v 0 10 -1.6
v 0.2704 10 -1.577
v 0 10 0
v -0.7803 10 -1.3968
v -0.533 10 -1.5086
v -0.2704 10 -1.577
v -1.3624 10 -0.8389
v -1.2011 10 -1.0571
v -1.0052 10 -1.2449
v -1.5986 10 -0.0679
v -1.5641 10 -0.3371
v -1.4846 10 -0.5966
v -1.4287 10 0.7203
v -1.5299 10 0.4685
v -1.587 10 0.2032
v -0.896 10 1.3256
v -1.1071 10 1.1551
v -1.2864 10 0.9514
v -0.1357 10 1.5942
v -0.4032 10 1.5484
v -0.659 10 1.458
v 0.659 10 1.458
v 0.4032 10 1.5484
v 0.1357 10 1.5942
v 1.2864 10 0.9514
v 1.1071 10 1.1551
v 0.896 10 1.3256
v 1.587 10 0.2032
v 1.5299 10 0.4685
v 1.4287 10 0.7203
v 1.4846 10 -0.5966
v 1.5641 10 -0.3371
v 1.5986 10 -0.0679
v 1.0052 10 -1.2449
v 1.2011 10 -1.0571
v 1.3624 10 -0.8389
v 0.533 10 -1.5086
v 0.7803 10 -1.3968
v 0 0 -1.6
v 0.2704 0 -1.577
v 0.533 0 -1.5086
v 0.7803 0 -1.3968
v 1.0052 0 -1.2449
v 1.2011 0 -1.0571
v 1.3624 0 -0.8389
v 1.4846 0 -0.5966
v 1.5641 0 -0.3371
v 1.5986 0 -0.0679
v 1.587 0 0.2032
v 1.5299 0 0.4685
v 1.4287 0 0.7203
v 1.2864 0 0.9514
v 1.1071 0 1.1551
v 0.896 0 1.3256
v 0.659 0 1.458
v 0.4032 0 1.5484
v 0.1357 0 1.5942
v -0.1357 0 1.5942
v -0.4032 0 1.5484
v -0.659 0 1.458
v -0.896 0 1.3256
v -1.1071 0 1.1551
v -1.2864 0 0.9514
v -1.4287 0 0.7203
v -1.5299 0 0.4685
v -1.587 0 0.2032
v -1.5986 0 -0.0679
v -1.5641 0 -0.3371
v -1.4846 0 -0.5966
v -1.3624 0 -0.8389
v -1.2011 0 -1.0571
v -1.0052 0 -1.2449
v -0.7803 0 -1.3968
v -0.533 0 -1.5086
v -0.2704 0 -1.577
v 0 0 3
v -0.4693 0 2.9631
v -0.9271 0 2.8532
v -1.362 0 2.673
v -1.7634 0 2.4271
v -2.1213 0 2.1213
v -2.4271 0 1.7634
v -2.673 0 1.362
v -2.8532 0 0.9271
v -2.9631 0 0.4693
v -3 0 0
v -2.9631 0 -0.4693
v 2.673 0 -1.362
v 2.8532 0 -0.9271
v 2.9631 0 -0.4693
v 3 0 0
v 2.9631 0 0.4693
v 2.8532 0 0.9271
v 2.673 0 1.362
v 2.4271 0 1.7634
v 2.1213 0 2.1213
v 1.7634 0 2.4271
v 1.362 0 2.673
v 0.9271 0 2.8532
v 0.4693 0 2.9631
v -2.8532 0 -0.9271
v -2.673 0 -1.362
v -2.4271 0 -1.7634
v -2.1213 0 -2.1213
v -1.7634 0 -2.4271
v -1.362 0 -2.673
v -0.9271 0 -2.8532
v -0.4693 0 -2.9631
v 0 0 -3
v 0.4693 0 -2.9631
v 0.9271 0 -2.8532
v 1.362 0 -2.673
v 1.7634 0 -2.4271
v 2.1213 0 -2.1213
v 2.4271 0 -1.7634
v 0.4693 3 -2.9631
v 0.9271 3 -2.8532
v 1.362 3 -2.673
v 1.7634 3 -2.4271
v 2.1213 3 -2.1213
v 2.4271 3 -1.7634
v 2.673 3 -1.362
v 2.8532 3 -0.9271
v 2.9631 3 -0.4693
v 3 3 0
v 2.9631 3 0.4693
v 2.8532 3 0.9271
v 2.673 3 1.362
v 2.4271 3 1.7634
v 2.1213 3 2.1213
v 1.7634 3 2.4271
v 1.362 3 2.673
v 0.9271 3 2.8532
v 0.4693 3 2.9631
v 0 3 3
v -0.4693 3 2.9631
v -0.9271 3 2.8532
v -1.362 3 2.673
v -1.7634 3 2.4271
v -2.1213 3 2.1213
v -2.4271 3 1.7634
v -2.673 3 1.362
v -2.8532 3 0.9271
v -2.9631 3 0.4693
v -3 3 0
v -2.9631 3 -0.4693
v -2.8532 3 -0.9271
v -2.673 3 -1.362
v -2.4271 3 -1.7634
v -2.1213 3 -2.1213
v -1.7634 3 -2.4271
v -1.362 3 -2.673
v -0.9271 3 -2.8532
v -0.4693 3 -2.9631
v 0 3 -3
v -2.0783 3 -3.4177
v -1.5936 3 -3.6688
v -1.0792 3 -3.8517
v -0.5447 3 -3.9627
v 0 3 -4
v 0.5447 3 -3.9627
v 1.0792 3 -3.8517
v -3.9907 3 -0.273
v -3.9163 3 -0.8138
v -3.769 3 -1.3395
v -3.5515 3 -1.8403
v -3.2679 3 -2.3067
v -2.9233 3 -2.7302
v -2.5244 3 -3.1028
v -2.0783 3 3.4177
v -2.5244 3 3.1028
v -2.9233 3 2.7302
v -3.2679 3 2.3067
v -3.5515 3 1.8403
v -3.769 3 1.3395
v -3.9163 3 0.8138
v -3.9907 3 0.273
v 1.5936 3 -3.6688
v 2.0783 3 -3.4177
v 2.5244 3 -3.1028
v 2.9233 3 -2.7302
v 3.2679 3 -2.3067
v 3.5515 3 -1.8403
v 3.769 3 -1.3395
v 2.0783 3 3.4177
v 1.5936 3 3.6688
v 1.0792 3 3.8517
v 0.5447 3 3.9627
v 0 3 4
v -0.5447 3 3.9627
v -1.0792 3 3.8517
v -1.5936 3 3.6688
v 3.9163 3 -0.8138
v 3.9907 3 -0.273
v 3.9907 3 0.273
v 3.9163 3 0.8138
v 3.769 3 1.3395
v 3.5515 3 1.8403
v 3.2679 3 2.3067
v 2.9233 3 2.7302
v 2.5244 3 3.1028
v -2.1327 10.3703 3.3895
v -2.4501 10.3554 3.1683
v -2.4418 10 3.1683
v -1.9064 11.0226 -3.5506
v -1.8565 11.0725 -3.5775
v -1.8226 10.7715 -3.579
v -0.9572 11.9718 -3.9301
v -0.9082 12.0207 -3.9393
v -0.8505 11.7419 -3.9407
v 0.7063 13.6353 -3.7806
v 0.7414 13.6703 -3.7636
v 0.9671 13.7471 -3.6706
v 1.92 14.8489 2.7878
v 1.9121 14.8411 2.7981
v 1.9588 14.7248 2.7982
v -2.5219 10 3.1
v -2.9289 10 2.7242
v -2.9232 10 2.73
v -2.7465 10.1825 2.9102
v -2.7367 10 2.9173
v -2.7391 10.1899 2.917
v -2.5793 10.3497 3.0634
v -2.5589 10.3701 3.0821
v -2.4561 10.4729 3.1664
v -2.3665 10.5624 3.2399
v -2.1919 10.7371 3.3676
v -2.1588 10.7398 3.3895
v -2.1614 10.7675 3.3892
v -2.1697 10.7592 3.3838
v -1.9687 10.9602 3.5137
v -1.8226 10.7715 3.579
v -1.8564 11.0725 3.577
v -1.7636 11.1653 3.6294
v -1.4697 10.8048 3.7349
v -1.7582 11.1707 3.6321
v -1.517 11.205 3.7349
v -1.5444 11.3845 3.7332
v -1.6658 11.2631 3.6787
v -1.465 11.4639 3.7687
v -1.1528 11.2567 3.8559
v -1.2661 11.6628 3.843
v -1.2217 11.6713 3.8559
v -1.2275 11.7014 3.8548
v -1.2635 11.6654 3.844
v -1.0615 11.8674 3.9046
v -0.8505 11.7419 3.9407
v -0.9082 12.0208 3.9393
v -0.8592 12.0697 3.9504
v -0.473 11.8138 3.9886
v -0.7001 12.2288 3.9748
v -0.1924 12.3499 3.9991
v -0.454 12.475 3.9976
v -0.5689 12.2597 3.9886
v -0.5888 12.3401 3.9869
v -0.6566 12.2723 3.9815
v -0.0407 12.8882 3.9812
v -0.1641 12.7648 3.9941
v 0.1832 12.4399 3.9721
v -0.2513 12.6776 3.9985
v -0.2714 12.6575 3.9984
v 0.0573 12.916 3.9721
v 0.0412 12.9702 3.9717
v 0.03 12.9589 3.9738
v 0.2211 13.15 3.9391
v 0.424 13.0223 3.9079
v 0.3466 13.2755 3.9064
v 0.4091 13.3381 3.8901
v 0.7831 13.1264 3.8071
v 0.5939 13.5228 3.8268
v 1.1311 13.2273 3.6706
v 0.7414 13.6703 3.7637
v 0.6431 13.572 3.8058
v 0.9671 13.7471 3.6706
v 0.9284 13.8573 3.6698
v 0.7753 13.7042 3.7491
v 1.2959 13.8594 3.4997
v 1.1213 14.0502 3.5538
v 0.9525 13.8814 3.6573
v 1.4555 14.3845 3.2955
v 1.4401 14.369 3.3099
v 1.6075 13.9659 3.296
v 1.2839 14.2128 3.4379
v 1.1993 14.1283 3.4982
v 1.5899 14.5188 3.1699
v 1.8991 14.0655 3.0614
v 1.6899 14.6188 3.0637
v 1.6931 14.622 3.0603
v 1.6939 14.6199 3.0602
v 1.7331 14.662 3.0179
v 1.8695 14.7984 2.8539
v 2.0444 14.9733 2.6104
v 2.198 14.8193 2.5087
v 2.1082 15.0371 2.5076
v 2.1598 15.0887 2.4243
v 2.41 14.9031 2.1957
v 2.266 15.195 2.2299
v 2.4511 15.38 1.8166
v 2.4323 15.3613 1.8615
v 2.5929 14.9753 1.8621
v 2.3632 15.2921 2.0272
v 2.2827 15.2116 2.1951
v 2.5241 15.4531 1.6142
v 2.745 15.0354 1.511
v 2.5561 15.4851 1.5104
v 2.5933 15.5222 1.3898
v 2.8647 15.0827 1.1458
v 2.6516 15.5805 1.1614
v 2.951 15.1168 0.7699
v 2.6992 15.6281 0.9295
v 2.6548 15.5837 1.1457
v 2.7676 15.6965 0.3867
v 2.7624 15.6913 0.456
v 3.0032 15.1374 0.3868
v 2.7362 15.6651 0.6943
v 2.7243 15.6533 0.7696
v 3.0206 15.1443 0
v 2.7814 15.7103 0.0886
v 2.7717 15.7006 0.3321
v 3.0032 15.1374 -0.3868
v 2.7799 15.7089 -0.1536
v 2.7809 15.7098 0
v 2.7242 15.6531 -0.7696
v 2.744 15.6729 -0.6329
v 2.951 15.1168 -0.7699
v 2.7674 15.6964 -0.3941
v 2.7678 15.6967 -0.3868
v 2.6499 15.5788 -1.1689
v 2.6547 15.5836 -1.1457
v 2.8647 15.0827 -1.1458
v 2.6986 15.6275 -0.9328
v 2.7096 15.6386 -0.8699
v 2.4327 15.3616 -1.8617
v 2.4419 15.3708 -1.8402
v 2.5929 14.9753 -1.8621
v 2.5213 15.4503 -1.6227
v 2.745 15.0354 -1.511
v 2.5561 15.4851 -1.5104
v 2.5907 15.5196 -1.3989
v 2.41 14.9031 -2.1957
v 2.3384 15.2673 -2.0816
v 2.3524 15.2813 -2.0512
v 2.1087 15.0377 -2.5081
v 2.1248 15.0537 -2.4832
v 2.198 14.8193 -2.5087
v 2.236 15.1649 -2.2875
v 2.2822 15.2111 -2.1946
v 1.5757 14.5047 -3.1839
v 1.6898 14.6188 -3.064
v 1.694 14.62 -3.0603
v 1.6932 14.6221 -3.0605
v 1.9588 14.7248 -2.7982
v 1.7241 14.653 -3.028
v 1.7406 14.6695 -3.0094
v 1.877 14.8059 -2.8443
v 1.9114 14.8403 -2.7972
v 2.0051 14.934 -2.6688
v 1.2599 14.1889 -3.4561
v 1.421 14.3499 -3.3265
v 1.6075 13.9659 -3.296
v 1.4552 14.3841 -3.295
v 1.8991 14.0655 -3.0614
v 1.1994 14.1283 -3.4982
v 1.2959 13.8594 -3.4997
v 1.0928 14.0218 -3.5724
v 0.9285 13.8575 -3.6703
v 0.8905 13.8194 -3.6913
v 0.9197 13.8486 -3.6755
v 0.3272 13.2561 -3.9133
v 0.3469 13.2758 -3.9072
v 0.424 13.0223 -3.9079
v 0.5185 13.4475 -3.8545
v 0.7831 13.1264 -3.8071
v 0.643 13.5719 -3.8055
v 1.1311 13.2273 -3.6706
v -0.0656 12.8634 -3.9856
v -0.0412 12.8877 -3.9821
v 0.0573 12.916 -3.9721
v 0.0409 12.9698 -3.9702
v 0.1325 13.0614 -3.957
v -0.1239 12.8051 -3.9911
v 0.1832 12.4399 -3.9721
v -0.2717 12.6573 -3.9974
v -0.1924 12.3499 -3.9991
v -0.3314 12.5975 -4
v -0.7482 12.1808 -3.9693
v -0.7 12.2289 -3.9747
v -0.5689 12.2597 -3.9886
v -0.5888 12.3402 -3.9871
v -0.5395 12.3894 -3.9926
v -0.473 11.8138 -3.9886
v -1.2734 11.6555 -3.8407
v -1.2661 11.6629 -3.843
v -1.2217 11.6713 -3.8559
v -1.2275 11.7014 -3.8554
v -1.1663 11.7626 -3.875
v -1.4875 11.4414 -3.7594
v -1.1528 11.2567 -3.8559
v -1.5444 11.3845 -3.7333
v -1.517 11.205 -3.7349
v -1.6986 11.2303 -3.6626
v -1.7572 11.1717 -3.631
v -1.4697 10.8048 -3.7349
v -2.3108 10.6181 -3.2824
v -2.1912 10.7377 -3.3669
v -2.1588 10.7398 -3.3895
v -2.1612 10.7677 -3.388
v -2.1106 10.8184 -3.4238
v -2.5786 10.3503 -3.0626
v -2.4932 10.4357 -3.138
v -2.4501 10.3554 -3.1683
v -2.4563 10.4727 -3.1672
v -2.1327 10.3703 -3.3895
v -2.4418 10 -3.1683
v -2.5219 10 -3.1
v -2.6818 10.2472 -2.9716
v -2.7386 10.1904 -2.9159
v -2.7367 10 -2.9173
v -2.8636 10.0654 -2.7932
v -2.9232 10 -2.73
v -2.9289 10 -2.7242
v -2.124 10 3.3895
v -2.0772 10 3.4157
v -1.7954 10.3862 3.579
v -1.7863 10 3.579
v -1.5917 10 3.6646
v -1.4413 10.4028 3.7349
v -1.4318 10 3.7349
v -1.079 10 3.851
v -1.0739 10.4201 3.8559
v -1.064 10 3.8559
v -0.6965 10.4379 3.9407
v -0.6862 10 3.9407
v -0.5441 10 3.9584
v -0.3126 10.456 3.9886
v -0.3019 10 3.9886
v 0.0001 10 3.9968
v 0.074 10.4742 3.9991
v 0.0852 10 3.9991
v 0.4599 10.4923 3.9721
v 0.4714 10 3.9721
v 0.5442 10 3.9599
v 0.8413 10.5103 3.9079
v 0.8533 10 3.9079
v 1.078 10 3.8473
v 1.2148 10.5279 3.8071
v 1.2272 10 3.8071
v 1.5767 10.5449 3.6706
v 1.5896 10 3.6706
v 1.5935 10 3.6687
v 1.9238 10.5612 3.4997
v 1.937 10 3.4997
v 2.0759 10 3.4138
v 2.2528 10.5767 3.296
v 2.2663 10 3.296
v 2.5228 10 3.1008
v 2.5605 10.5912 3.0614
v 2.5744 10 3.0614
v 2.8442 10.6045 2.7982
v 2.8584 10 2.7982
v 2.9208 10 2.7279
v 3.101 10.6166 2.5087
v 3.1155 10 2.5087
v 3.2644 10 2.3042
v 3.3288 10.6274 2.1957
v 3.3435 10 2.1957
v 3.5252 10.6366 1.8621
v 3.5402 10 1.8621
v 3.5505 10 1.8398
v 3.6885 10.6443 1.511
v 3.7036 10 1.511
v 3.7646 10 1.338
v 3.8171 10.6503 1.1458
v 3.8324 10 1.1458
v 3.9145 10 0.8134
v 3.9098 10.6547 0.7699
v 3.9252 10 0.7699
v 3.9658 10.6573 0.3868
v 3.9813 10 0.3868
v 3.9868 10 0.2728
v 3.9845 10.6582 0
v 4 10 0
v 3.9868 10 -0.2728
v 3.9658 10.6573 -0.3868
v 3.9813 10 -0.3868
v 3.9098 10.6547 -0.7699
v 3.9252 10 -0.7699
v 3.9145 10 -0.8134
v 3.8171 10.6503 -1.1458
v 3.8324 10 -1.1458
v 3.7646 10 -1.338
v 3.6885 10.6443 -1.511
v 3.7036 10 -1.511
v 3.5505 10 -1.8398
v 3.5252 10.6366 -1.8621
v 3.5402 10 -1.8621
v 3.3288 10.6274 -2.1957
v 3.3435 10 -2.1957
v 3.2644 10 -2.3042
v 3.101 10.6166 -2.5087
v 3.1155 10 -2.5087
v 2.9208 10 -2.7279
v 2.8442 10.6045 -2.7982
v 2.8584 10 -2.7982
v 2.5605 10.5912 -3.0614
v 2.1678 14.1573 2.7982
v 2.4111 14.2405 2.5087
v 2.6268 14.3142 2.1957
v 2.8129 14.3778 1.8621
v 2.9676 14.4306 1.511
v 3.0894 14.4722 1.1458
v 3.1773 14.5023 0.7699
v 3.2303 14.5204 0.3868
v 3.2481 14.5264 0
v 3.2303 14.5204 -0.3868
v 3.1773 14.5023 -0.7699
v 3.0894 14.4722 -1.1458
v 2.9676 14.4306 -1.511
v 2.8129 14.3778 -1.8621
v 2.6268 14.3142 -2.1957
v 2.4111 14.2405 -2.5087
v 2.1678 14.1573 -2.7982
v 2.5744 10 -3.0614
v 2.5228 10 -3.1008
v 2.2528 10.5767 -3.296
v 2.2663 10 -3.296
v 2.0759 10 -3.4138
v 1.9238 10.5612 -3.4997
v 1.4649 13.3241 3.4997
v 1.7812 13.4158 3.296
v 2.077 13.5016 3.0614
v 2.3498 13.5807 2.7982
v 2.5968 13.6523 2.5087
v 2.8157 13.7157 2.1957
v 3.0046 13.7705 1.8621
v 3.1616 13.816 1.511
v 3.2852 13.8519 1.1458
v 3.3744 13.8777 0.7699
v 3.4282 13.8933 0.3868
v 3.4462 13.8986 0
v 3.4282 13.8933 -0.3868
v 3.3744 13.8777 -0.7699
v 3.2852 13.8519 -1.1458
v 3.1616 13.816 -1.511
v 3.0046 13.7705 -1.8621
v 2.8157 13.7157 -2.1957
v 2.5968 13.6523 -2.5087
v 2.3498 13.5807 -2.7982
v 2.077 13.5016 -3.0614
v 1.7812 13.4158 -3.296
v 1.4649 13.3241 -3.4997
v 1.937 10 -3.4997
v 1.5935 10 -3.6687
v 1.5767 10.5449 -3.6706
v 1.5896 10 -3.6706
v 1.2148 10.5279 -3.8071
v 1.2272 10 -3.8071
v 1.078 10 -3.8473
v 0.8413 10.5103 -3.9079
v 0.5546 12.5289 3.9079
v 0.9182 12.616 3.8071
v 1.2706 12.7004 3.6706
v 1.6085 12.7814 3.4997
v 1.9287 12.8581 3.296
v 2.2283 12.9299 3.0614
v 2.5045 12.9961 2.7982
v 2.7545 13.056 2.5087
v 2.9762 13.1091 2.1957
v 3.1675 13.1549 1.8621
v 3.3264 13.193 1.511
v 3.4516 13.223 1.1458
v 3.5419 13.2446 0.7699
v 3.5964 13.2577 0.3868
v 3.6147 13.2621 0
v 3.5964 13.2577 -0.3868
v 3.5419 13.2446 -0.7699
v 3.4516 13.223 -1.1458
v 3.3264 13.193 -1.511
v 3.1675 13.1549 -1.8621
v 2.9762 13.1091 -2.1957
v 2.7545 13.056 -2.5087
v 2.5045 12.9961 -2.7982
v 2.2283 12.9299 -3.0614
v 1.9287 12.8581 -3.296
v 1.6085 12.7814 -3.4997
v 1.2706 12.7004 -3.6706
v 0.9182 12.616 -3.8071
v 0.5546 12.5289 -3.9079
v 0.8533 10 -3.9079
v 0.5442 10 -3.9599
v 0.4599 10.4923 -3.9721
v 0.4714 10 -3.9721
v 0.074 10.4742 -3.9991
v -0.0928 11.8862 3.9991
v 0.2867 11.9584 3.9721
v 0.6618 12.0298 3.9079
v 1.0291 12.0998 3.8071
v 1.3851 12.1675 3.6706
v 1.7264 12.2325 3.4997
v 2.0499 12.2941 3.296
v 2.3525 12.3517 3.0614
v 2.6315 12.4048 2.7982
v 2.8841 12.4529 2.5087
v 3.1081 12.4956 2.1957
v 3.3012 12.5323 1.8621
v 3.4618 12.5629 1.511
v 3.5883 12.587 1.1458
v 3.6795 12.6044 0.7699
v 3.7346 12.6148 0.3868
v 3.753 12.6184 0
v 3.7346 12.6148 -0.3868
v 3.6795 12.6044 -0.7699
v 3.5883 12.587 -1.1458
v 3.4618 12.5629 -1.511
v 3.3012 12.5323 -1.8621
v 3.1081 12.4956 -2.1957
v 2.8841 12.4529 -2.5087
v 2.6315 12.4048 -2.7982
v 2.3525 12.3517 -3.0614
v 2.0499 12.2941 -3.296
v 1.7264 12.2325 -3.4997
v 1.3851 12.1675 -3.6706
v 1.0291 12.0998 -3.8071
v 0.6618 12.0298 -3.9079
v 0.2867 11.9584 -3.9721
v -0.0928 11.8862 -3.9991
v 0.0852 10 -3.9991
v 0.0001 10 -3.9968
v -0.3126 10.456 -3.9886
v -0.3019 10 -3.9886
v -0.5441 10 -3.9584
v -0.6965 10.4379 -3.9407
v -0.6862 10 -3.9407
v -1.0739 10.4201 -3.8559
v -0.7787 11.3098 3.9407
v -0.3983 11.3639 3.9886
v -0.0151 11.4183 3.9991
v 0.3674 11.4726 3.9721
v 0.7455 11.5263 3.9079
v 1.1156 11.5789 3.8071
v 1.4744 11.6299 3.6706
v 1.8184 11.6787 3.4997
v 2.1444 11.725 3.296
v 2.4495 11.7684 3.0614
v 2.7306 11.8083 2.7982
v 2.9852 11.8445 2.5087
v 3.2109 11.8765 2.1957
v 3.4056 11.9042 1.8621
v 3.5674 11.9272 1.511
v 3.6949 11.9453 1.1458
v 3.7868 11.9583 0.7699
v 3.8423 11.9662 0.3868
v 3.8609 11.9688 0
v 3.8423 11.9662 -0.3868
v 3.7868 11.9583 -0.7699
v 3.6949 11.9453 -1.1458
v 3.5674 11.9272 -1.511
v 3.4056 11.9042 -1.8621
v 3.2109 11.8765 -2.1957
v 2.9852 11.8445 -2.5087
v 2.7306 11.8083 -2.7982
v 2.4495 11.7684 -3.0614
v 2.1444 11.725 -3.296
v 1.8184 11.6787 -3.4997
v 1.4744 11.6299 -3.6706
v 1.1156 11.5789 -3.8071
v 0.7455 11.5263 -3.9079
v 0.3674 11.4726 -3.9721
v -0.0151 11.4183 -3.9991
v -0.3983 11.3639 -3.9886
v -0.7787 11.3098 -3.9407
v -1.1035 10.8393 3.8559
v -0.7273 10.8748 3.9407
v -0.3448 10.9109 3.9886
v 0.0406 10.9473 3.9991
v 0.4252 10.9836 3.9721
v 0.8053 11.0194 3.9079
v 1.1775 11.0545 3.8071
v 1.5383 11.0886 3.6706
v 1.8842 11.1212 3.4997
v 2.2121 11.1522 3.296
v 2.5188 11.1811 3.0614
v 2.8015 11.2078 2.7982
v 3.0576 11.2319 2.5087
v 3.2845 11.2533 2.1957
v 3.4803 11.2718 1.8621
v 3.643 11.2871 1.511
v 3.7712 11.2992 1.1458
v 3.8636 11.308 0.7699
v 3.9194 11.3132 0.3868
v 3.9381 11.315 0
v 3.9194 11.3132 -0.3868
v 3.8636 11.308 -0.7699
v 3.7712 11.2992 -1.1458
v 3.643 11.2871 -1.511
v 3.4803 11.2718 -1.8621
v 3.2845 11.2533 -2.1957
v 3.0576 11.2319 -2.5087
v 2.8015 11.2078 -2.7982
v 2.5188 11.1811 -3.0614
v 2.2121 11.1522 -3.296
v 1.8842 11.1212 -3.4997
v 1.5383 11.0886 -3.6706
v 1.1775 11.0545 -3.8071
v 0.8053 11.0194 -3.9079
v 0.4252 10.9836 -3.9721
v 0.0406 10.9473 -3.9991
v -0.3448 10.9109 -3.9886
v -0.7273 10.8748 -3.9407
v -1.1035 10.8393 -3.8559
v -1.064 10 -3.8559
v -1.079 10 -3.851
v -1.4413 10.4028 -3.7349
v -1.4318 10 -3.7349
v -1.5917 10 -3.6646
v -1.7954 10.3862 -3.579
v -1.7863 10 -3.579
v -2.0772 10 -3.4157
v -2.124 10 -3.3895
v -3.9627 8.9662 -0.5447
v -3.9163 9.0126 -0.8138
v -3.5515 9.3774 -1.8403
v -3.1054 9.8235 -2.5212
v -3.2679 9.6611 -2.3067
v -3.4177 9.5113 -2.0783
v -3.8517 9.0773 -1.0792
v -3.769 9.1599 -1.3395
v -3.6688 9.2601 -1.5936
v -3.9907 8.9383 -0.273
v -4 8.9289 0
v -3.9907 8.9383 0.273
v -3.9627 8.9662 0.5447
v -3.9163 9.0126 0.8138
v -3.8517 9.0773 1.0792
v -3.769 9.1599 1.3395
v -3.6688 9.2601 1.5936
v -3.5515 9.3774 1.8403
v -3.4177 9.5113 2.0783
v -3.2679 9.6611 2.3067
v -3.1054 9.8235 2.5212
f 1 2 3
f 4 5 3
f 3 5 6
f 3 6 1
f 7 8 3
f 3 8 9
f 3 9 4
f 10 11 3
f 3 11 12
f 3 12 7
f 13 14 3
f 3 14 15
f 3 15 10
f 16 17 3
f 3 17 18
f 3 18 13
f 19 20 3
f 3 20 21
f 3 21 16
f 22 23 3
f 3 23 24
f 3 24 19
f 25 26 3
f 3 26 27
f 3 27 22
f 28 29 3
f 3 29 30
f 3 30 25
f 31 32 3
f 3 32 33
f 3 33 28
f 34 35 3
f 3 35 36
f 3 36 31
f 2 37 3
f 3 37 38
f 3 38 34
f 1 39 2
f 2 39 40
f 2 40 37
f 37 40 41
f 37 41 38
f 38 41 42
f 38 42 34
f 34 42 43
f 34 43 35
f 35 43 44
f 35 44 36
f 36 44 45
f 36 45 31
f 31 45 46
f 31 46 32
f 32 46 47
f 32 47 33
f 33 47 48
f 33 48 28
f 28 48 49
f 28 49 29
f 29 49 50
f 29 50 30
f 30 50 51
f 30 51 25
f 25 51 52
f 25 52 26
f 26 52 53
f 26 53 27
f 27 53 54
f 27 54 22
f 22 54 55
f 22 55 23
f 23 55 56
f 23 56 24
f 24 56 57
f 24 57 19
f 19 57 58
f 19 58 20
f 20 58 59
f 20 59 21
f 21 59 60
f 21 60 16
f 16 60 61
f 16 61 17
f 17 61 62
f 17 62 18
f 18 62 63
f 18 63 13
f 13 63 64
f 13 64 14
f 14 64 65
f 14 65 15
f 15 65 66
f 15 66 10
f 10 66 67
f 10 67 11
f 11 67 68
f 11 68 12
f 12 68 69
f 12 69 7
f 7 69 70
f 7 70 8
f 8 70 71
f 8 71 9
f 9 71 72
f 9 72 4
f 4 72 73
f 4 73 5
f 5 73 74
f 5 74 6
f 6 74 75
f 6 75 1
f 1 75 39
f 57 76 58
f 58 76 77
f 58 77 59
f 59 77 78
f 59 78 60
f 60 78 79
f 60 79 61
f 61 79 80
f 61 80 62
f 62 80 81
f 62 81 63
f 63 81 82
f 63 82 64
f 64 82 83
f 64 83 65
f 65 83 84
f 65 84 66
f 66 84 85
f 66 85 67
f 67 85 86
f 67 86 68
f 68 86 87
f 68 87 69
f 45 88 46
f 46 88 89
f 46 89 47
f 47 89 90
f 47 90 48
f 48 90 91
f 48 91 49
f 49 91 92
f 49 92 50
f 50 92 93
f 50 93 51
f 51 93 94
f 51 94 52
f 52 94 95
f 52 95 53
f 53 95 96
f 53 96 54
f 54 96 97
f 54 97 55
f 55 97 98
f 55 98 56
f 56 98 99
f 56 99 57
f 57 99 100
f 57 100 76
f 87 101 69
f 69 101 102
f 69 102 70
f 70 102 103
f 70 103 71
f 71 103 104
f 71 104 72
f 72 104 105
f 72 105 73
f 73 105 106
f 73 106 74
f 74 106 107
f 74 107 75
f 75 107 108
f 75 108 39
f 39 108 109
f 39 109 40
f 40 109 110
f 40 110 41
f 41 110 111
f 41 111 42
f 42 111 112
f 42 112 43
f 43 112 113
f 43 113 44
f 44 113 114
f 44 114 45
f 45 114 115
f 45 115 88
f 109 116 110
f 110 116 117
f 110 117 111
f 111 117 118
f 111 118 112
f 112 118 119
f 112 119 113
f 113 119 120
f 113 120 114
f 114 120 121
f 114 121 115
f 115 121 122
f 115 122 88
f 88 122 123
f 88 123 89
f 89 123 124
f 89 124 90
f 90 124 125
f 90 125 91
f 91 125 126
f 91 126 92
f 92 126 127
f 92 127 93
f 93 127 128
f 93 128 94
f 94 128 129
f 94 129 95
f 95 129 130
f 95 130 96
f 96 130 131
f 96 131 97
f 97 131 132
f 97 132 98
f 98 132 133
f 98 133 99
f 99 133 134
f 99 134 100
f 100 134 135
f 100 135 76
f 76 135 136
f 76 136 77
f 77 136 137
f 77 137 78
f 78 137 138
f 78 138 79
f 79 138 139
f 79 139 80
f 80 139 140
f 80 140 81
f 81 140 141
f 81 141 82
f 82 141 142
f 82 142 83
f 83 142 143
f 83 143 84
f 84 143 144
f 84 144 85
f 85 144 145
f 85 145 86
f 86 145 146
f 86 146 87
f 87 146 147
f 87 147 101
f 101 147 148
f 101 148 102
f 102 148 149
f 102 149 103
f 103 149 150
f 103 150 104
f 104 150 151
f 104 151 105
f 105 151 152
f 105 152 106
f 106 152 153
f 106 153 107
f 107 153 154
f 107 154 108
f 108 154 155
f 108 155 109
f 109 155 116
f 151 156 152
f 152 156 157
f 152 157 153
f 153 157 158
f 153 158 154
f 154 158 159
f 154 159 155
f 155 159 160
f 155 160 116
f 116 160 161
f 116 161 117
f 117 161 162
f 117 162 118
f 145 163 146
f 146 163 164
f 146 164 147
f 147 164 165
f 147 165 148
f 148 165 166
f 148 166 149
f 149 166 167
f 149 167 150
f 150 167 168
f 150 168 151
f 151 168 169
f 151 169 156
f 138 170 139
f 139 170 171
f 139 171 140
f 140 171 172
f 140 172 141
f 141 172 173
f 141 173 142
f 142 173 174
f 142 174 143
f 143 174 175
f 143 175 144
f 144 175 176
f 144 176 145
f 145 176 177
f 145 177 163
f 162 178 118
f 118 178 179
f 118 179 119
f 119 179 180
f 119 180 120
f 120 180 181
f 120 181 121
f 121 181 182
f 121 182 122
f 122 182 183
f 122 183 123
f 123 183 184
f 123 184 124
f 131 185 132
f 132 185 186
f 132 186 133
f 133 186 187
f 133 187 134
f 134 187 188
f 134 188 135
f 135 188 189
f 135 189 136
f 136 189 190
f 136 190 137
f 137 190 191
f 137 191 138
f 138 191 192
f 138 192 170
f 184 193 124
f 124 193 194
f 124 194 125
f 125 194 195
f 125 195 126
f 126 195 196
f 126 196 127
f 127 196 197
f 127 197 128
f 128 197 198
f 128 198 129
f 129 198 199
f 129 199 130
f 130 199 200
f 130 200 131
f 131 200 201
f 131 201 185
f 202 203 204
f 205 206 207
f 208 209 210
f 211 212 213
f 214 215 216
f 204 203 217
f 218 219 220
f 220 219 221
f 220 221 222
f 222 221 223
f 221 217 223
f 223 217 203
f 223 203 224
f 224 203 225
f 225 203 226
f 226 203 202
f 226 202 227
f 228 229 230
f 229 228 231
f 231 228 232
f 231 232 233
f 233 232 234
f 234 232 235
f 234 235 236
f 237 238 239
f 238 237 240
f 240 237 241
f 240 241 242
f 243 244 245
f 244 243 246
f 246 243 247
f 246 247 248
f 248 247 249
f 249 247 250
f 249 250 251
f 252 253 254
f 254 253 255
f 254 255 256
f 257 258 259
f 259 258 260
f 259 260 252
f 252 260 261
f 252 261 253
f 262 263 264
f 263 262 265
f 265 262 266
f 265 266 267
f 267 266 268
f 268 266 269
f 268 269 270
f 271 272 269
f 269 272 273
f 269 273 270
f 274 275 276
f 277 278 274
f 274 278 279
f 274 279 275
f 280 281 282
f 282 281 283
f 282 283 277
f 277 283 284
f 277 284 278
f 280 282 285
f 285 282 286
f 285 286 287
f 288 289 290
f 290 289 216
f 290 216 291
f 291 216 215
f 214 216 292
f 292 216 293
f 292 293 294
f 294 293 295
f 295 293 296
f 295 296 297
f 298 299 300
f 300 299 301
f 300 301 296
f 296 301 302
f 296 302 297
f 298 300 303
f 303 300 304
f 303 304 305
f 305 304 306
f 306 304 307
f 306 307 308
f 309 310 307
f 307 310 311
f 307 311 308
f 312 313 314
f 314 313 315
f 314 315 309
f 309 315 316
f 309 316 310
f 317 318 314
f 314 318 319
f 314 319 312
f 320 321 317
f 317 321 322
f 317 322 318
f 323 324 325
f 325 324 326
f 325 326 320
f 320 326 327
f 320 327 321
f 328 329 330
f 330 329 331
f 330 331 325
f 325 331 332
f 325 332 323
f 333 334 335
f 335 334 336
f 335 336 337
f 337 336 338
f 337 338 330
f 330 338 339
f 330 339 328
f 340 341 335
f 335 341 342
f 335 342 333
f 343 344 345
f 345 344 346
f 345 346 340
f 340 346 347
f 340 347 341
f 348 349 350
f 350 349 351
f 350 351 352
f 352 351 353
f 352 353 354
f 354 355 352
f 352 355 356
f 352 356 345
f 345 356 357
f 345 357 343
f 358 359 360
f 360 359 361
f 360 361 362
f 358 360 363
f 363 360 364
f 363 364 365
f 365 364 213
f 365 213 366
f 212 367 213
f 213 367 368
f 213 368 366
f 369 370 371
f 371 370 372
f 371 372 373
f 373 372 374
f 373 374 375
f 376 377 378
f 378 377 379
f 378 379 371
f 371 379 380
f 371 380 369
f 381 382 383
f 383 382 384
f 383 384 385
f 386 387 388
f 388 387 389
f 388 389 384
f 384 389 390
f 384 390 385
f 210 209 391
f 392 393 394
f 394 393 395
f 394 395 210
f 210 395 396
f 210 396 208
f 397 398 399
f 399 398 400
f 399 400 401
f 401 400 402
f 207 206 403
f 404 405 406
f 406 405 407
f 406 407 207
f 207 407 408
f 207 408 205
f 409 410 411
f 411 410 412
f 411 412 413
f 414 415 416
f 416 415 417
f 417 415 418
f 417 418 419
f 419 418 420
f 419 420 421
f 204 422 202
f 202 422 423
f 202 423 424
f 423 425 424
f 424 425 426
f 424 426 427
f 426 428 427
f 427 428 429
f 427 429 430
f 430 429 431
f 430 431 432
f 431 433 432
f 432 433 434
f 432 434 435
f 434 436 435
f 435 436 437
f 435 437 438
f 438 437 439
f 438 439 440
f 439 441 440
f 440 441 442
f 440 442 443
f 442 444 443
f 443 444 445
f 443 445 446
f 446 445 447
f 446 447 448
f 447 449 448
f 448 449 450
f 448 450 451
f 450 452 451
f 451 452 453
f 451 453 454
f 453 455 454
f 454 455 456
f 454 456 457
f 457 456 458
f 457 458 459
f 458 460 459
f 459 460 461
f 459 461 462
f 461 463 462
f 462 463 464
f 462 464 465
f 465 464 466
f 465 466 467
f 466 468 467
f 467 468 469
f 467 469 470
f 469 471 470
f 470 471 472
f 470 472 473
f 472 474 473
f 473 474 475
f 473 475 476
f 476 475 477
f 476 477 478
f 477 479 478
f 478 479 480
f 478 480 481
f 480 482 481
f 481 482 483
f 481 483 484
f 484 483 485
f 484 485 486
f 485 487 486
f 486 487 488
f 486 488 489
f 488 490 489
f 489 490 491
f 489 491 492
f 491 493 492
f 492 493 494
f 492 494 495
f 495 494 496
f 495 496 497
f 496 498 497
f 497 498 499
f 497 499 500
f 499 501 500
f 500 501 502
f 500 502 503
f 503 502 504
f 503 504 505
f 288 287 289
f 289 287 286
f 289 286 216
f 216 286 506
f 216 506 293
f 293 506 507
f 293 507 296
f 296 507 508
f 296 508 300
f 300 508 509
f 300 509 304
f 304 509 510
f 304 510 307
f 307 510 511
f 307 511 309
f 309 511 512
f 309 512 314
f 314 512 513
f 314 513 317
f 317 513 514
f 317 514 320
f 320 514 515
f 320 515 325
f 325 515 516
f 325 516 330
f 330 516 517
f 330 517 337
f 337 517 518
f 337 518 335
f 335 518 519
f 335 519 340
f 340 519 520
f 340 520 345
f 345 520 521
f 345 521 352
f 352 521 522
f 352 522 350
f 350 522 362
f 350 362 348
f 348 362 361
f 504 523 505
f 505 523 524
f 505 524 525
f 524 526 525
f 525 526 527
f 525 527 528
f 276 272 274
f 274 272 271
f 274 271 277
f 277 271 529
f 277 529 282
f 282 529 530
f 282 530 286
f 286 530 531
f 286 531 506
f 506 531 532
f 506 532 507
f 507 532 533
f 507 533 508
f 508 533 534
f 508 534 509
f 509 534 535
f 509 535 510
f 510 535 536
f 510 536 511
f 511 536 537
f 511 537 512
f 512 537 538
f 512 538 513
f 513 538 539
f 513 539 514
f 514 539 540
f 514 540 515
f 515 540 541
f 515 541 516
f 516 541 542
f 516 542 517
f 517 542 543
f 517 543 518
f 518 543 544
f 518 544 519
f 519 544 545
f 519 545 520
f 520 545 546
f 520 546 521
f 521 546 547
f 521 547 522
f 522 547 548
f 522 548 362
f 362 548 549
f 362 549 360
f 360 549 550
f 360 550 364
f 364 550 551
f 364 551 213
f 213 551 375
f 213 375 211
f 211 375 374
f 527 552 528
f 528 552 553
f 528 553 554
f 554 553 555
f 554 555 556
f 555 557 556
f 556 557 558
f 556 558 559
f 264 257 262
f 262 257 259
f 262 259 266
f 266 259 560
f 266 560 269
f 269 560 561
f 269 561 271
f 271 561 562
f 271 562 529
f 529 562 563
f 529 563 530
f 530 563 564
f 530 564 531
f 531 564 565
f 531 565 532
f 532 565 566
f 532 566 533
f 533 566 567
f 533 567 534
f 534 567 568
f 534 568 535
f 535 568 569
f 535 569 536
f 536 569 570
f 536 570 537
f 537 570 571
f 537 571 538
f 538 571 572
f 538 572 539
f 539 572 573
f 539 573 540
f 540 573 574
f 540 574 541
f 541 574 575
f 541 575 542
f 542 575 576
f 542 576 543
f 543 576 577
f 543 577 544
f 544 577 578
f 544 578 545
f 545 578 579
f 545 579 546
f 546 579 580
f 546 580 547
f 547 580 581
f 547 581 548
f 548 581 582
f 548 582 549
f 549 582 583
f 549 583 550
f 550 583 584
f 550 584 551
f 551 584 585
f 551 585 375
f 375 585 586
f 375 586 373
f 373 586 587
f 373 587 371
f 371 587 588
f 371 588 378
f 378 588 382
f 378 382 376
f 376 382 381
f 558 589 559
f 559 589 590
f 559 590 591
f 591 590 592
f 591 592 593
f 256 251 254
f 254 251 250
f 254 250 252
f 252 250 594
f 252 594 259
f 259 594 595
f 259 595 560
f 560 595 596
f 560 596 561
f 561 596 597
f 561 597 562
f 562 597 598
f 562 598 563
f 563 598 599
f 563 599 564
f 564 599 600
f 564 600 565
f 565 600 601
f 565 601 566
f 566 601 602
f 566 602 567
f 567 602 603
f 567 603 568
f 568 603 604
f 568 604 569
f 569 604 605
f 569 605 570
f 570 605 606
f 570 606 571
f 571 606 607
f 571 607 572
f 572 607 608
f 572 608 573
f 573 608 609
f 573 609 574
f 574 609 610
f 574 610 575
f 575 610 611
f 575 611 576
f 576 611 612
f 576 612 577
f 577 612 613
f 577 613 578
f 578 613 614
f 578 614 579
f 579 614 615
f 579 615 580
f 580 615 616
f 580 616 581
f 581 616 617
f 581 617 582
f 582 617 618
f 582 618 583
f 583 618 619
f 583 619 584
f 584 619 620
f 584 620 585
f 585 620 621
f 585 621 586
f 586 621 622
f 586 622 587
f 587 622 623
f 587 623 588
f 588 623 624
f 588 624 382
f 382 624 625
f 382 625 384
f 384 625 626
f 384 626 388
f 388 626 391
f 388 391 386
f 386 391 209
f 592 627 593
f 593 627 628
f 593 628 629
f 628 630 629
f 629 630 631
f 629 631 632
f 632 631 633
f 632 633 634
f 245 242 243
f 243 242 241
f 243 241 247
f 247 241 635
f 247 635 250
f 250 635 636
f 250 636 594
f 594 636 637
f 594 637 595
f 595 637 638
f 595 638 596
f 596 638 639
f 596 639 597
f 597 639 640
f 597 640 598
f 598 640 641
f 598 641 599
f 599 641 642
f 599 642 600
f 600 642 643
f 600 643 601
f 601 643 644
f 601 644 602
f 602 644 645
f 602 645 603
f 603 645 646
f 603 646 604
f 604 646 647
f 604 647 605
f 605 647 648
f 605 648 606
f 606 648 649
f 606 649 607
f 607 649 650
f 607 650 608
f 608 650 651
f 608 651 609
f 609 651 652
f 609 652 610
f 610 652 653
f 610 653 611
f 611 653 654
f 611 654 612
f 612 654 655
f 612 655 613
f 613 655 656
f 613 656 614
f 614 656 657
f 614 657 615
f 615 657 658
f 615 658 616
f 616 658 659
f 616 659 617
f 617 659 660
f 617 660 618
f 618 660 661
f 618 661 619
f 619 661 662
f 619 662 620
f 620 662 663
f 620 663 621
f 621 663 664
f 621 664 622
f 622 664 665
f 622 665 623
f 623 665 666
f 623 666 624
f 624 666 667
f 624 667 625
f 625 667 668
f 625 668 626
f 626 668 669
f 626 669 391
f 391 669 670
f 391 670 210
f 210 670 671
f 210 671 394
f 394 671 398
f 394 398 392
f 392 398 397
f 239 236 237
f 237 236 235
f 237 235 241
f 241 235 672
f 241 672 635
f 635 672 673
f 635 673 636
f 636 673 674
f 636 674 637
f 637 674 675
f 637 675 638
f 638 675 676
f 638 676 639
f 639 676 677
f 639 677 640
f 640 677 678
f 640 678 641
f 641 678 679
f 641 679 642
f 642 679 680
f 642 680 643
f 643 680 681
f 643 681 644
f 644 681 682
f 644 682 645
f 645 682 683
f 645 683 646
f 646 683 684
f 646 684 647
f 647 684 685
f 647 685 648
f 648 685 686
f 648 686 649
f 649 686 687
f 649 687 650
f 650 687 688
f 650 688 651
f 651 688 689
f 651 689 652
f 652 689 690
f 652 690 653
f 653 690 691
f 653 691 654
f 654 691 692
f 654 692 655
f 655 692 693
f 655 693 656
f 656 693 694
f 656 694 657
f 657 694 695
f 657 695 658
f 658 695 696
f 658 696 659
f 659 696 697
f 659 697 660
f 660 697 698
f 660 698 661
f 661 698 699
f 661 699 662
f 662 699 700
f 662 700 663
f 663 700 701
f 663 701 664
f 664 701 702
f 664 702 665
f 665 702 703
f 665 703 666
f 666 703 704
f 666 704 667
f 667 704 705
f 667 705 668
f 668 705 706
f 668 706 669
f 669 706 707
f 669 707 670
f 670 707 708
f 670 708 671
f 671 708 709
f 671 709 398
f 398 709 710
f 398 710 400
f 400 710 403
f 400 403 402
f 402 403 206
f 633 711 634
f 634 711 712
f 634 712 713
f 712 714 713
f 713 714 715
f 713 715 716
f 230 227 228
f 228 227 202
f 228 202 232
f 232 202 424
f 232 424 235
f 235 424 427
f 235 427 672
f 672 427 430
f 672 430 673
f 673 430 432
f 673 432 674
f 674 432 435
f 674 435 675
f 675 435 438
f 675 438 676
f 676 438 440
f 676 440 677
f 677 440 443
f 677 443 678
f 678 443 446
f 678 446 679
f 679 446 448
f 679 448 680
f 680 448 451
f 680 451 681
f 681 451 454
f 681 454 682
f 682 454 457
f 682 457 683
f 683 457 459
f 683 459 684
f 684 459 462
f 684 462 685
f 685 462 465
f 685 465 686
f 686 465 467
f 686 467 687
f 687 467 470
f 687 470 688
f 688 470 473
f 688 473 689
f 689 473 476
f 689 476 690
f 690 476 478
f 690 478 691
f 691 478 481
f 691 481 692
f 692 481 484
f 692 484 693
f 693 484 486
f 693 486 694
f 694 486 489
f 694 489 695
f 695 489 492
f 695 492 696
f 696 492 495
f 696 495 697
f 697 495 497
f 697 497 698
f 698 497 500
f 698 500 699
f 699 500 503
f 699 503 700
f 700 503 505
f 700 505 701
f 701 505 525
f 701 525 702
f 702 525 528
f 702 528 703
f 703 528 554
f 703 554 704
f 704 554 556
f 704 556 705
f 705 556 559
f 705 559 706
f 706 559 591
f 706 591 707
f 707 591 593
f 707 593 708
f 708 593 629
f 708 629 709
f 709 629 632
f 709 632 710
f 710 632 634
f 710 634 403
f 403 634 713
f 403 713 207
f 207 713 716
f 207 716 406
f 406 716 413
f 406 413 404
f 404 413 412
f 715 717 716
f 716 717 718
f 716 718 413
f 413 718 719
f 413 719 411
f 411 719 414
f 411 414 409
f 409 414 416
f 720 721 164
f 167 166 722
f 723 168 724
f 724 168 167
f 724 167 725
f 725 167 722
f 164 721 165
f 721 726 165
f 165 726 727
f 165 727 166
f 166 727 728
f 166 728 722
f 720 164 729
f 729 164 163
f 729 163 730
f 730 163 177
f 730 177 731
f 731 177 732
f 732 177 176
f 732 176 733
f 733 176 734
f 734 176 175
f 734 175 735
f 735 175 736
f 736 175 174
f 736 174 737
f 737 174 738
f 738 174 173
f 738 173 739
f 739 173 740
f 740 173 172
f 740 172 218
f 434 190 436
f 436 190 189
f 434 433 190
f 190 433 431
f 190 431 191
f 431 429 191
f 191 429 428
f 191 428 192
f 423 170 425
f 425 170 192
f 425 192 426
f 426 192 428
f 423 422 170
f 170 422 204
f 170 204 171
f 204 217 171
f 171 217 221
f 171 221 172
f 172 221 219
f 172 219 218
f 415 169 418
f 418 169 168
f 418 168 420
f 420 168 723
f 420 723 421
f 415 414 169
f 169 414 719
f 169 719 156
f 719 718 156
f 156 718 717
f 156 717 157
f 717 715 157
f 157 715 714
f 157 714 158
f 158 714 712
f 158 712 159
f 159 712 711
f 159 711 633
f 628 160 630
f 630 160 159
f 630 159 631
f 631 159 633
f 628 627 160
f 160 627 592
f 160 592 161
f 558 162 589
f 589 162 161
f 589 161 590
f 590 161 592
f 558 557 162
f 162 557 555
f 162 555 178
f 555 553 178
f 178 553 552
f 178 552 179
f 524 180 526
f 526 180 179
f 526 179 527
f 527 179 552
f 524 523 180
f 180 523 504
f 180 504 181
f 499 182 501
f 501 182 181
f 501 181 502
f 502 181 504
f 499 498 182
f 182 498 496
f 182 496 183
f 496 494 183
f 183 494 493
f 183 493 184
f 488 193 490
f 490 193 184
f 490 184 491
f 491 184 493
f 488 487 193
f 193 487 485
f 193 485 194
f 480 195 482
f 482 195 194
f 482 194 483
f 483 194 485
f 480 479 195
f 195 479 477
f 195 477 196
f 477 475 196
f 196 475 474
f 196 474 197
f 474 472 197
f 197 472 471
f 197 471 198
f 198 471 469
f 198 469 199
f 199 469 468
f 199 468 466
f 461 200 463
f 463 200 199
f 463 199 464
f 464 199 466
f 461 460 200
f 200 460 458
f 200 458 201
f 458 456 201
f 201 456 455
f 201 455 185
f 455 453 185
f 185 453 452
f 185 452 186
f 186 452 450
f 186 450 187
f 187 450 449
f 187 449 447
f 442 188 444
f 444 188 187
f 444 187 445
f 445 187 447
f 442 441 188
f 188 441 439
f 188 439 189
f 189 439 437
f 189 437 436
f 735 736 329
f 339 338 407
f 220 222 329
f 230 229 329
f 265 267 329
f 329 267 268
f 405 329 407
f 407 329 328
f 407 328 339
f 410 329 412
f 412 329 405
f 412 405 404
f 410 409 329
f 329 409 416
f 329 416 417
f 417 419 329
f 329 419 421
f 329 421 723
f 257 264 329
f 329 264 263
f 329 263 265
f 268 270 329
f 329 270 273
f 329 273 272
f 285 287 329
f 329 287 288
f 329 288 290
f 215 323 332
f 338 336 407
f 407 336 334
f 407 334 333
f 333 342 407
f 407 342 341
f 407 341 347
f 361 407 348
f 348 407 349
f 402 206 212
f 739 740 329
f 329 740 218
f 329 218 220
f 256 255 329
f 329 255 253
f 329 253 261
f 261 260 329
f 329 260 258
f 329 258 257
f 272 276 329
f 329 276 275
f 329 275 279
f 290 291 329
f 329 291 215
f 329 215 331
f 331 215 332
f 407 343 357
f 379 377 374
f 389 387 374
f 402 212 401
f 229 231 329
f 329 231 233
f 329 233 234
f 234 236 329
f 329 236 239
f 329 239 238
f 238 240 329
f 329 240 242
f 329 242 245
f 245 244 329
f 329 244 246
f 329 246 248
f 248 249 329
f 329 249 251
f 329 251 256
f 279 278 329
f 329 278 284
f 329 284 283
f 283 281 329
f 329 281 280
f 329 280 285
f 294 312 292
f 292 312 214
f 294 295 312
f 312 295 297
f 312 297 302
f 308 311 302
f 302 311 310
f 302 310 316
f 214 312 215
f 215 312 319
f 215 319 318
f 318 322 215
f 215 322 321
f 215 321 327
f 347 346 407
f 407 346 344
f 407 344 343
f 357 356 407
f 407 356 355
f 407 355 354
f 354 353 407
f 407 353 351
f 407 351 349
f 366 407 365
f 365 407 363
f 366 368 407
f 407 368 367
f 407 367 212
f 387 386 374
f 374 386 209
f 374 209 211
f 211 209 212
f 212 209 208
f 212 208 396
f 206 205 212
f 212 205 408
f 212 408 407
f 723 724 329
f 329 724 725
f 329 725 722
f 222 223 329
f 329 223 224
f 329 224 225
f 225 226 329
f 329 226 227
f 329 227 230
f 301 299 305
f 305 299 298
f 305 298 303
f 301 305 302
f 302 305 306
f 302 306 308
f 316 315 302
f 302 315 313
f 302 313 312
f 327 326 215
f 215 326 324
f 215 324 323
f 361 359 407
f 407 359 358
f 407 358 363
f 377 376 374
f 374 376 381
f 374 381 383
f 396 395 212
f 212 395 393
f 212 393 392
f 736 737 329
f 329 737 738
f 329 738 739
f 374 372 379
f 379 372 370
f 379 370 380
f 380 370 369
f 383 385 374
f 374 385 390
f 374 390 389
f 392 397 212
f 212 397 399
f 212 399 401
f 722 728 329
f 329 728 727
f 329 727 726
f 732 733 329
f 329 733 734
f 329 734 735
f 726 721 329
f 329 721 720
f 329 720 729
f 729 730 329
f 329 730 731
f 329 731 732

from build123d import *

# Parameters (mm, degrees)
SKETCH1_R               = 4
CUT_EXTRUDE1_START      = -3
SKETCH3_R               = 4
SKETCH3_R_2             = 3
CUT_EXTRUDE1_DEPTH      = 3
SKETCH4_R               = 4
SKETCH4_R_2             = 3
CUT_EXTRUDE2_DEPTH      = 3
SKETCH5_R               = 1.6
CUT_EXTRUDE3_DEPTH      = 10
SKETCH6_R               = 1.6
CUT_EXTRUDE4_DEPTH      = 10
CUT_EXTRUDE5_DEPTH      = 32.496031585
CUT_EXTRUDE5_DEPTH_BACK = 32.496031585
SKETCH14_R              = 1.5
BOSS_EXTRUDE4_DEPTH     = 10
SKETCH15_W              = 82.307095059
SKETCH15_H              = 58.72366942
CUT_EXTRUDE6_DEPTH      = 23.510122874


with BuildPart() as part:
    # Sweep1: sweep along a path in Sketch2
    with BuildLine(Plane.XY) as sweep1_path:
        Line((0, 0), (0, 10))
        ThreePointArc((0, 10), (-2.928932188, 17.071067812), (-10, 20))
        Line((-10, 20), (-20, 20))
    # Sketch1 → Sweep1 (sweep)
    with BuildSketch(Plane(origin=(0, 0, 0), x_dir=(1, 0, 0), z_dir=(0, 1, 0))):
        Circle(SKETCH1_R)
    sweep(path=sweep1_path.line)

    # Sketch3 → Cut-Extrude1 (cut)
    with BuildSketch(Plane.XZ.offset(CUT_EXTRUDE1_START)):
        Circle(SKETCH3_R)
        Circle(SKETCH3_R_2, mode=Mode.SUBTRACT)
    extrude(amount=CUT_EXTRUDE1_DEPTH, mode=Mode.SUBTRACT)

    # Sketch4 → Cut-Extrude2 (cut)
    with BuildSketch(Plane.ZY.offset(20)):
        with Locations((0, 20)):
            Circle(SKETCH4_R)
        with Locations((0, 20)):
            Circle(SKETCH4_R_2, mode=Mode.SUBTRACT)
    extrude(amount=-CUT_EXTRUDE2_DEPTH, mode=Mode.SUBTRACT)

    # Sketch5 → Cut-Extrude3 (cut)
    with BuildSketch(Plane.XZ):
        Circle(SKETCH5_R)
    extrude(amount=-CUT_EXTRUDE3_DEPTH, mode=Mode.SUBTRACT)

    # Sketch6 → Cut-Extrude4 (cut)
    with BuildSketch(Plane.ZY.offset(20)):
        with Locations((0, 20)):
            Circle(SKETCH6_R)
    extrude(amount=-CUT_EXTRUDE4_DEPTH, mode=Mode.SUBTRACT)

    # Sketch11 → Cut-Extrude5 (cut, two sides: drawn at the far end of the back side and taken through both)
    with BuildSketch(Plane.XY.offset(-CUT_EXTRUDE5_DEPTH_BACK)):
        Polygon((-15.076530842, 11.99453697), (5.142966103, 32.214033915), (12.214033915, 25.142966103), (-8.00546303, 4.923469158), align=None)
    extrude(amount=CUT_EXTRUDE5_DEPTH + CUT_EXTRUDE5_DEPTH_BACK, mode=Mode.SUBTRACT)


with BuildPart() as cut_extrude5_piece_1:
    # of the separate pieces the step leaves, piece 1, a body of its own (cut_extrude5_pieces)
    add(part.part.solids().sort_by_distance((4, 3, 0))[0])



with BuildPart() as cut_extrude5_piece_2:
    # of the separate pieces the step leaves, piece 2, a body of its own (cut_extrude5_pieces)
    add(part.part.solids().sort_by_distance((-10, 17.071067812, -2.724216628))[0])


with BuildPart() as cut_extrude5_piece_1_1:
    add(cut_extrude5_piece_1.part)

    add(cut_extrude5_piece_2.part)  # Boss-Extrude4 merges Cut-Extrude5 piece 2
    # Sketch14 → Boss-Extrude4 (add)
    with BuildSketch(Plane(origin=(-6.464466094, 6.464466094, 0), x_dir=(0, 0, 1), z_dir=(-0.7071067811865517, 0.7071067811865434, 0))):
        with Locations((0, 9.142135624)):
            Circle(SKETCH14_R)
    extrude(amount=BOSS_EXTRUDE4_DEPTH)

    # Sketch15 → Cut-Extrude6 (cut, through all)
    with BuildSketch(Plane(origin=(-6.464466094, 6.464466094, 0), x_dir=(0, 0, 1), z_dir=(-0.7071067811865517, 0.7071067811865434, 0))):
        with Locations((3.361016584, 6.067930336)):
            Rectangle(SKETCH15_W, SKETCH15_H)
    extrude(amount=CUT_EXTRUDE6_DEPTH, mode=Mode.SUBTRACT)


solid = cut_extrude5_piece_1_1.part
